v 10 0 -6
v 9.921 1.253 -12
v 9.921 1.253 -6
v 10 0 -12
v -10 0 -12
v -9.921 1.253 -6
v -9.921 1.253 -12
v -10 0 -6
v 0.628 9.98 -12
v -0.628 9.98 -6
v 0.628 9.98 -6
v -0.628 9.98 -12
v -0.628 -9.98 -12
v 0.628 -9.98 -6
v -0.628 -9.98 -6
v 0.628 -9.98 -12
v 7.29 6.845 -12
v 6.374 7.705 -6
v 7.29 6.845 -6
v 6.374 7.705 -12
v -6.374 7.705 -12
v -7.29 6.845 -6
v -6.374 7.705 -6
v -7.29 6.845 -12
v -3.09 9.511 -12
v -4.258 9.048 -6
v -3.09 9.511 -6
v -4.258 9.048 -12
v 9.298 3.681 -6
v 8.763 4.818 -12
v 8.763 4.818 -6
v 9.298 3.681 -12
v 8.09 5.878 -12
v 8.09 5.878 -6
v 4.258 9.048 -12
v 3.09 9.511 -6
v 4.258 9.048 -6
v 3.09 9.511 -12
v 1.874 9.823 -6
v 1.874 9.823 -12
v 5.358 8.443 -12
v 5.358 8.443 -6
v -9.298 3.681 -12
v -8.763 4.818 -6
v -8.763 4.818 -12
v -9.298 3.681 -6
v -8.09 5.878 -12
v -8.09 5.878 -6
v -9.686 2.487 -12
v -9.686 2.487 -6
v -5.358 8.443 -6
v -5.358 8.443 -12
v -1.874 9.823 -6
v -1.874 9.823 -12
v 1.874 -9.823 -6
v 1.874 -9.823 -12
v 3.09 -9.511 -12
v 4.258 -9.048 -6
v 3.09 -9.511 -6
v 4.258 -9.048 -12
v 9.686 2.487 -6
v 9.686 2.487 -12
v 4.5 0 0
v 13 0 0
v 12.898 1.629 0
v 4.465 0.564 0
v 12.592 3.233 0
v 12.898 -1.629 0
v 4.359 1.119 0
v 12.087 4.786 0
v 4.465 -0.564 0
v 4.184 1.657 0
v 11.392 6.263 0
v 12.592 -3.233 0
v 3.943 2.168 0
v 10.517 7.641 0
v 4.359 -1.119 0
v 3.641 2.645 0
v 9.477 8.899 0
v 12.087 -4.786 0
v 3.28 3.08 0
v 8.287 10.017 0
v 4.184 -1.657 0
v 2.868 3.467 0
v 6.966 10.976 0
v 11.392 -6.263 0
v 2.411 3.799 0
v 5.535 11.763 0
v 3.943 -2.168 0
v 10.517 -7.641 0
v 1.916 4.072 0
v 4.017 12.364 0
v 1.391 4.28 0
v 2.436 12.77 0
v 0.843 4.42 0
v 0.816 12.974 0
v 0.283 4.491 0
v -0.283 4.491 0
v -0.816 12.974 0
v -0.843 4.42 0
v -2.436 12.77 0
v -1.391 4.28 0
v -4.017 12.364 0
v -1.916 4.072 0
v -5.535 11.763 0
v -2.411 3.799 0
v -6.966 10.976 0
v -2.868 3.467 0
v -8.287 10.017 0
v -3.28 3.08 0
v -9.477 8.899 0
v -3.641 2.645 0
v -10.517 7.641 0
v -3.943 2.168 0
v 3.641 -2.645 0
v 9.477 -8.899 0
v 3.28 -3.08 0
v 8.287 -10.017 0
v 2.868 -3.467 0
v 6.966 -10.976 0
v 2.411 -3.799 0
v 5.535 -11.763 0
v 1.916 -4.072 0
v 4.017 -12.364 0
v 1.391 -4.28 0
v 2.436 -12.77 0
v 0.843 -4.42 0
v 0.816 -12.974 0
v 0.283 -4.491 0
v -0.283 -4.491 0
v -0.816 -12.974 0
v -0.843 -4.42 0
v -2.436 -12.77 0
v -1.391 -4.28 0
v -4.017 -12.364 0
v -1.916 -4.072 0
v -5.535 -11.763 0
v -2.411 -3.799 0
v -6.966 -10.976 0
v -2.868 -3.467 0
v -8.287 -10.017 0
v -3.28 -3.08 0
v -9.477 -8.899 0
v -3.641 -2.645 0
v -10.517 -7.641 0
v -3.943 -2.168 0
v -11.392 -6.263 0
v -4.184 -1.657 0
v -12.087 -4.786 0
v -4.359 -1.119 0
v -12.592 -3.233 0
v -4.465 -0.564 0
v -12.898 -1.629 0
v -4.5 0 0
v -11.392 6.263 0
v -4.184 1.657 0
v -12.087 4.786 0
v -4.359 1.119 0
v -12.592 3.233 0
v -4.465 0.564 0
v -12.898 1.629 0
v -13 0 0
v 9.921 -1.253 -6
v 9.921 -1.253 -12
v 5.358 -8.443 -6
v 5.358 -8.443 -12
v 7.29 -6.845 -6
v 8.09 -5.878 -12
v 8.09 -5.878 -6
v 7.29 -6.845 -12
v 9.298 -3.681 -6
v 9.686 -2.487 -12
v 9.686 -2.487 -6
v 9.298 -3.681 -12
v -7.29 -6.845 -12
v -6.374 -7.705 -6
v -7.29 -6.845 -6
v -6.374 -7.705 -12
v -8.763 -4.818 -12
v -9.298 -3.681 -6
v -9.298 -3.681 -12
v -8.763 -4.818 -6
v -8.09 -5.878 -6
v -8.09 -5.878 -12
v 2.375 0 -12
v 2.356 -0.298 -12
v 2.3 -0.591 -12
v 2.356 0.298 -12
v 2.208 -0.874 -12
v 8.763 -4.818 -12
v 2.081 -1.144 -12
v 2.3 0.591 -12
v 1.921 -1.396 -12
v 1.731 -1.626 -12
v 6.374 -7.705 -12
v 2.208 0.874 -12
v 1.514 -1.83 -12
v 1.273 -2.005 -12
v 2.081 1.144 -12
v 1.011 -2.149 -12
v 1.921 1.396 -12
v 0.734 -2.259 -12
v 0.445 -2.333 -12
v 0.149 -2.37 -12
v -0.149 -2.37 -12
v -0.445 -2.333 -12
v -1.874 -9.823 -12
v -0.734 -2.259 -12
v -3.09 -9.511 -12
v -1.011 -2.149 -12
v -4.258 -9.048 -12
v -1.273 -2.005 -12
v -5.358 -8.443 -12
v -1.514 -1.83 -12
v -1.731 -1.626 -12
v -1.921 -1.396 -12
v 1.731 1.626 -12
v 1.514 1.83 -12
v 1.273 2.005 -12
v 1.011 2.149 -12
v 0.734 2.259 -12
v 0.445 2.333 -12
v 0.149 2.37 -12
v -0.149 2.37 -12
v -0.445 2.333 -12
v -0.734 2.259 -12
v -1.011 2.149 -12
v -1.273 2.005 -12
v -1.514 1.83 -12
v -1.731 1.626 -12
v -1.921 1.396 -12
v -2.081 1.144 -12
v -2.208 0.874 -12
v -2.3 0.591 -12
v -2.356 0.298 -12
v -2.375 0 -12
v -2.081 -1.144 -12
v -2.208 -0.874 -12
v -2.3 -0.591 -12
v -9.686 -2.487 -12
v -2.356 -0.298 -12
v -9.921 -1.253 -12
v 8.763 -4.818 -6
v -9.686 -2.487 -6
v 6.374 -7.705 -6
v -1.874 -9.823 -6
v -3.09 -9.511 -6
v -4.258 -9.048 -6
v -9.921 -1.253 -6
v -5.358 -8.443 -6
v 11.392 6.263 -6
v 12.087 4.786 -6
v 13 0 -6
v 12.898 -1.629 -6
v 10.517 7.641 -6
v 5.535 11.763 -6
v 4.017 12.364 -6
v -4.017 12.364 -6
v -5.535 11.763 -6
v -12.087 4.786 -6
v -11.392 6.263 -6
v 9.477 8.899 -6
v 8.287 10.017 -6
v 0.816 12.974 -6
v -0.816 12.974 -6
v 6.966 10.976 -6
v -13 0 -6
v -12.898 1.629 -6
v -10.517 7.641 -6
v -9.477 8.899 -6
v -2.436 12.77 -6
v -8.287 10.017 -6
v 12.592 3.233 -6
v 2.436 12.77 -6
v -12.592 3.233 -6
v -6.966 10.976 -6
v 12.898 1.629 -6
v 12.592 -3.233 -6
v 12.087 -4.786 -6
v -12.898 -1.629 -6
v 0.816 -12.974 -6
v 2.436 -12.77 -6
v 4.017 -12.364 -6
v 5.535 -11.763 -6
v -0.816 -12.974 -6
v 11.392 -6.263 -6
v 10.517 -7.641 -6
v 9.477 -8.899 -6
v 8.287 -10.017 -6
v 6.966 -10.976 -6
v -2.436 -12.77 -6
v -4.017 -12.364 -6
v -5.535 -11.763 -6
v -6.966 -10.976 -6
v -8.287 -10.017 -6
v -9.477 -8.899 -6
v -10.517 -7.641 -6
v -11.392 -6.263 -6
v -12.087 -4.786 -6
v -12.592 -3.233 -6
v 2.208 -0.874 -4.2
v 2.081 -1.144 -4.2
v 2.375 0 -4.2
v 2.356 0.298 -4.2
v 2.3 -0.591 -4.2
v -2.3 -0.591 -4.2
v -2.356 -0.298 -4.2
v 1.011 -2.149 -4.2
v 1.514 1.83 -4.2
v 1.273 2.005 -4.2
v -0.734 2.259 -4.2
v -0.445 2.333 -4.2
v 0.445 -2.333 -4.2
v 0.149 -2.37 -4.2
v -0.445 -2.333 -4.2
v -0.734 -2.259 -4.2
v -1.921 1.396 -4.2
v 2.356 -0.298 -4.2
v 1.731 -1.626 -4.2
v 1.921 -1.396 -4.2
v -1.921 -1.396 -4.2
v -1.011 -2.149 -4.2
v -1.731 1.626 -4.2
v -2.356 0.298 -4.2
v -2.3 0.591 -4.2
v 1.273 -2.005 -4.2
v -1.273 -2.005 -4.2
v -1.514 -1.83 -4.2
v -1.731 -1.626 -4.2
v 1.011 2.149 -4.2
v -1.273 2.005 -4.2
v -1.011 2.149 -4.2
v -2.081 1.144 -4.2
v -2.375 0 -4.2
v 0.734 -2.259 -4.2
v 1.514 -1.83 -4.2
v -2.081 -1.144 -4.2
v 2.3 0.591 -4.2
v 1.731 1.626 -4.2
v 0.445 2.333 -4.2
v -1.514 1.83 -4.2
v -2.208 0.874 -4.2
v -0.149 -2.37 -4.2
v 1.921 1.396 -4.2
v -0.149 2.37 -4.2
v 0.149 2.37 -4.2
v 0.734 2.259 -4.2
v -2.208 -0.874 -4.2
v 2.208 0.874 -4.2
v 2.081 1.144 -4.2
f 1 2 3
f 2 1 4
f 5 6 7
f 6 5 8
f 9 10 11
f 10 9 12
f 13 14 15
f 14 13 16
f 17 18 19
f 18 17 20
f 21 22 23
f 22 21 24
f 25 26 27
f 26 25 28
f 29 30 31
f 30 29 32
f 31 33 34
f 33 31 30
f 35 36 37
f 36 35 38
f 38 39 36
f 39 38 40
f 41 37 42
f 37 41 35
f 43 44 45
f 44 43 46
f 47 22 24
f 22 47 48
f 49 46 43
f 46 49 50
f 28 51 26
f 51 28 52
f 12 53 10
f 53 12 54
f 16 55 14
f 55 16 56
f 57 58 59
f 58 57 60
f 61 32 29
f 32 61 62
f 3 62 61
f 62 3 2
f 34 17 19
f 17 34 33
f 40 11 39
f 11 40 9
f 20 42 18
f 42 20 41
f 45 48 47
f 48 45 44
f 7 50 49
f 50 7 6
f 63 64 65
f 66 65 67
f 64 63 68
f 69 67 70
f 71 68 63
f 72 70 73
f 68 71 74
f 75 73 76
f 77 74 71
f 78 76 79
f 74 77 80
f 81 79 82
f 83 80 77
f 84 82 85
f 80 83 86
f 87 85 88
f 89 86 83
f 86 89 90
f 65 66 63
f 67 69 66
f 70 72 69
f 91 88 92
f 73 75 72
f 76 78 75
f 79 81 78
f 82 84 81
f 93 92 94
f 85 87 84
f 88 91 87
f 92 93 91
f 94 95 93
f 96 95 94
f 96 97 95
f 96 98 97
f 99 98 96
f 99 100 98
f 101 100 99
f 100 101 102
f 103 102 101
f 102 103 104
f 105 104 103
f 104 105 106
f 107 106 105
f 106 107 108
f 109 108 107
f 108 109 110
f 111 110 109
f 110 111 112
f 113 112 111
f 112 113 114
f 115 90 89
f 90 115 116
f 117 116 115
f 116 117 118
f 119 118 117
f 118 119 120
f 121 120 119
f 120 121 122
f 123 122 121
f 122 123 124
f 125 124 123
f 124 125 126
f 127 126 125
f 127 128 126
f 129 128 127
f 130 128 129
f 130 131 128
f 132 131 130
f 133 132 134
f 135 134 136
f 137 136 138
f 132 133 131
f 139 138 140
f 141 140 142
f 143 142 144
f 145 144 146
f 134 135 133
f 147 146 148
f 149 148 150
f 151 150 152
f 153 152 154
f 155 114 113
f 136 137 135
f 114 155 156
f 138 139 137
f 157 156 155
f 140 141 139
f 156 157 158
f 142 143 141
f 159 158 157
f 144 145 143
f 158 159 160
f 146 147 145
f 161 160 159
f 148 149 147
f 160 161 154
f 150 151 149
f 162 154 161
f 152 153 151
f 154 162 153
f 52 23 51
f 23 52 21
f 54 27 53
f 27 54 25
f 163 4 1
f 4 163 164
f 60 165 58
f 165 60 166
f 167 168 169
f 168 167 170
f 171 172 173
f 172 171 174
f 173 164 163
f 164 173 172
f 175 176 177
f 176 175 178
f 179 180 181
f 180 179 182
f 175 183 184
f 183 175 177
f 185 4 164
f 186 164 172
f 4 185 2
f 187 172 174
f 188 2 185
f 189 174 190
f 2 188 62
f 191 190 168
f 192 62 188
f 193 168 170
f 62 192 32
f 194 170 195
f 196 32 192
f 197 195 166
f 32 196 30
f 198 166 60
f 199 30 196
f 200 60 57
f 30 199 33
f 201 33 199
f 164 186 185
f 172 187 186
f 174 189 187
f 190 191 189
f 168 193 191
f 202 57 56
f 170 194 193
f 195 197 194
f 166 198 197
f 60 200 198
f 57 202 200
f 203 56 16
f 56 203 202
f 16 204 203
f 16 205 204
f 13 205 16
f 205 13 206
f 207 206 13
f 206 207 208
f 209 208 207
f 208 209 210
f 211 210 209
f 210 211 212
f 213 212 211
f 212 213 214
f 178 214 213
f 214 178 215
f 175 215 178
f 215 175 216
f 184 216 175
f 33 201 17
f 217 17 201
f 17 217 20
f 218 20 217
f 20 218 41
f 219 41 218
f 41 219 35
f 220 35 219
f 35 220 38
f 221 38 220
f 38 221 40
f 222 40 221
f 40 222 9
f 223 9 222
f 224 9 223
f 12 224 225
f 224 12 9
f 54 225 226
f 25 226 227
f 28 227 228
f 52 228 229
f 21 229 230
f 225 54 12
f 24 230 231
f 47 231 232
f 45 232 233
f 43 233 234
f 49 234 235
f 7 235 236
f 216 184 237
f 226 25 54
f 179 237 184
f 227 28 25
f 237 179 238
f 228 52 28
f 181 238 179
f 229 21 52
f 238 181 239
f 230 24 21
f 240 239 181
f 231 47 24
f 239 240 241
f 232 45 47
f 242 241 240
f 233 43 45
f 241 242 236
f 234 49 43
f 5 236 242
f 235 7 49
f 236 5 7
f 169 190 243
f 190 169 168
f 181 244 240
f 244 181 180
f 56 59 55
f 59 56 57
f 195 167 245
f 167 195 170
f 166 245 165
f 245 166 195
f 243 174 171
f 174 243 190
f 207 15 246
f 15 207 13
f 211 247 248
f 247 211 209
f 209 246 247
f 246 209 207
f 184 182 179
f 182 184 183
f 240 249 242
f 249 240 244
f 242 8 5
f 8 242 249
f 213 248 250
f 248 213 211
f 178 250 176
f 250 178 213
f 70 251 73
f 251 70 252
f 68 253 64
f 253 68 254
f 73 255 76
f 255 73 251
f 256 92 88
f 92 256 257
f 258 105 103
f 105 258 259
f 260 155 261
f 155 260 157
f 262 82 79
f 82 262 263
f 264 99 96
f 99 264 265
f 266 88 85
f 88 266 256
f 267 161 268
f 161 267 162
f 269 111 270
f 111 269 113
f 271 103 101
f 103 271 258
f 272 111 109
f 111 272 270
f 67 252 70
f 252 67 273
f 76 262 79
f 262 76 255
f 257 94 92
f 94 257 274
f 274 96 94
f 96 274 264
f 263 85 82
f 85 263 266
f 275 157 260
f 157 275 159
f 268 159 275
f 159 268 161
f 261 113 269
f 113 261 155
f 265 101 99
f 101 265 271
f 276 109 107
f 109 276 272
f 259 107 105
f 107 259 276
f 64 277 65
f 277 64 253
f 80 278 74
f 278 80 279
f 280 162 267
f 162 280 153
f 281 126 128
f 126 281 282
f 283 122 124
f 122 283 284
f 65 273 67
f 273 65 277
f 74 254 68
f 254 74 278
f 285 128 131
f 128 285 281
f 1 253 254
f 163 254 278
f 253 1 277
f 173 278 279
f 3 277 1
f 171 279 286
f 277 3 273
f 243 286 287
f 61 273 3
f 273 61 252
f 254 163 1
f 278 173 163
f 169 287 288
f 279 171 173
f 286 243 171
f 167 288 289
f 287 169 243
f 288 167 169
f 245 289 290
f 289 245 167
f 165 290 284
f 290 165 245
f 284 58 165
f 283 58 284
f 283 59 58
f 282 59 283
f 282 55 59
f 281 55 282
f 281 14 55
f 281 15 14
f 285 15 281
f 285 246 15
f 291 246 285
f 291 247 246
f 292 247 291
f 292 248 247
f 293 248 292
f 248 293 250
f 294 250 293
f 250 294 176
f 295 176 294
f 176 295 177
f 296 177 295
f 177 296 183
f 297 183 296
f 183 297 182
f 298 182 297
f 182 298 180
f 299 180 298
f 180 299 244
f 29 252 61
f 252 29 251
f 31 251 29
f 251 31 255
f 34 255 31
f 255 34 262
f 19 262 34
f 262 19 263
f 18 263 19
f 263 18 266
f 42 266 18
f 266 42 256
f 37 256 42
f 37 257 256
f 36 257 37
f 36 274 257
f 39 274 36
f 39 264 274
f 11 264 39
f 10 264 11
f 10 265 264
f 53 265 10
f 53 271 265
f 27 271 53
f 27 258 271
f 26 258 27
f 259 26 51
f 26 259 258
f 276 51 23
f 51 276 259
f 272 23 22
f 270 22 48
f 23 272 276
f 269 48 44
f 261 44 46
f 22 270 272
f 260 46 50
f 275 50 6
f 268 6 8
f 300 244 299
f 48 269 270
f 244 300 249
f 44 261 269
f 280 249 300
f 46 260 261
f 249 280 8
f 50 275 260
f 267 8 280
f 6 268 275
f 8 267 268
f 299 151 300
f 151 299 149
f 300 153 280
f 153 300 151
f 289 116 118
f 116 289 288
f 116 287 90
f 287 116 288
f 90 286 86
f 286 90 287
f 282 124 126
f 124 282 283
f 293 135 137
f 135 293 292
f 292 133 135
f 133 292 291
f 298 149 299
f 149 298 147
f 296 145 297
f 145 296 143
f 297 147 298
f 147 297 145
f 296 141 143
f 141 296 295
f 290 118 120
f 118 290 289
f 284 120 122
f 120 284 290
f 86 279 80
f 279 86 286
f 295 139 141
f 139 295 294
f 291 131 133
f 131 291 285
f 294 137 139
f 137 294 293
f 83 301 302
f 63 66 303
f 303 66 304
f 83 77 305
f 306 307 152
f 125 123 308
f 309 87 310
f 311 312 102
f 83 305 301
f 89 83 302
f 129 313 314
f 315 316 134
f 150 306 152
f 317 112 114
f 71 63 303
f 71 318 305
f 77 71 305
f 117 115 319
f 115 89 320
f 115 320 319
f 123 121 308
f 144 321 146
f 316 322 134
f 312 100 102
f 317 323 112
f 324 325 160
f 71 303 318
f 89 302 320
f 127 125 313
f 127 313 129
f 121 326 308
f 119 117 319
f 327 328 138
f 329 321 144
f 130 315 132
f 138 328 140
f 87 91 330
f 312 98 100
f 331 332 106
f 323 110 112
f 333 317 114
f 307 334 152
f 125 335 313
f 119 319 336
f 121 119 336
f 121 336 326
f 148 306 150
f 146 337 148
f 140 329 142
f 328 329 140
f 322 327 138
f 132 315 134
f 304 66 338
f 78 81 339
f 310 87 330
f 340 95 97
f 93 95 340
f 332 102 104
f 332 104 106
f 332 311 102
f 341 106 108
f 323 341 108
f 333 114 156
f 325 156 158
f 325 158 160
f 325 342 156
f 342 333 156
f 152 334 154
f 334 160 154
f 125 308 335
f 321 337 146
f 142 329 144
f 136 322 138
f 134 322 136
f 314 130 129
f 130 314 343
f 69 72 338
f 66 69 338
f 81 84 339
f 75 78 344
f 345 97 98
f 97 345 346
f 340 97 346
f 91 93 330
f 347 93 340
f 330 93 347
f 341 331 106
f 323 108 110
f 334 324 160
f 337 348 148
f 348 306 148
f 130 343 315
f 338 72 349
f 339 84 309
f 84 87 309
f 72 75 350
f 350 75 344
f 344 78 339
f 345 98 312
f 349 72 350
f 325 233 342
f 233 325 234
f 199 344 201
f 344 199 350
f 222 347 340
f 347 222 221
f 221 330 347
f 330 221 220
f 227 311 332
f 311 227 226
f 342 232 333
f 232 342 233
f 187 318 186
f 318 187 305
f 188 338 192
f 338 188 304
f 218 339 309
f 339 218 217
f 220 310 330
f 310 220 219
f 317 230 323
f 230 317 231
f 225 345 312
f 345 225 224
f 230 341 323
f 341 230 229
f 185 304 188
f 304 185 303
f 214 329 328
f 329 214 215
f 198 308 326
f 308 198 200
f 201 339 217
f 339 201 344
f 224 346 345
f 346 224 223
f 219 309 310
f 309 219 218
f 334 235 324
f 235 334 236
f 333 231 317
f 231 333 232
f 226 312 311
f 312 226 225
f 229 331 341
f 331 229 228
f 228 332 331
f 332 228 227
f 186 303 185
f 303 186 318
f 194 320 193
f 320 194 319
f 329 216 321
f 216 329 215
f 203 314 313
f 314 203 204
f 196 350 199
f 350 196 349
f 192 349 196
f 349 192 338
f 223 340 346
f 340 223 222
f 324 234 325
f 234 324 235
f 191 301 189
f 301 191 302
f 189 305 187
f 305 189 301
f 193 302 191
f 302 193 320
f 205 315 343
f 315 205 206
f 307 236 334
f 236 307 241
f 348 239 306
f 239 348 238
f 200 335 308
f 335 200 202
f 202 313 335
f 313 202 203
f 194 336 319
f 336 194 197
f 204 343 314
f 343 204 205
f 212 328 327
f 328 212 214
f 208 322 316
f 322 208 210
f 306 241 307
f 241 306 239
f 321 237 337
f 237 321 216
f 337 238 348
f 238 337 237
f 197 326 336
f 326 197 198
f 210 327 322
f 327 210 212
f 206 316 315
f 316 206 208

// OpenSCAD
$fn = 50;


difference() {
	union() {
		translate(v = [0, 0, -12.0000000000]) {
			cylinder(h = 12, r = 10.0000000000);
		}
		translate(v = [0, 0, -6.0000000000]) {
			cylinder(h = 6, r = 13.0000000000);
		}
	}
	union() {
		translate(v = [0, 0, 0]) {
			rotate(a = [0, 0, 0]) {
				difference() {
					union() {
						#translate(v = [0, 0, -12.0000000000]) {
							cylinder(h = 12, r = 2.2500000000);
						}
						#translate(v = [0, 0, -4.2000000000]) {
							cylinder(h = 4.2000000000, r = 10.0000000000, r1 = 2.3750000000, r2 = 4.5000000000);
						}
						#translate(v = [0, 0, -12.0000000000]) {
							cylinder(h = 12, r = 2.3750000000);
						}
						#translate(v = [0, 0, -12.0000000000]) {
							cylinder(h = 12, r = 2.2500000000);
						}
					}
					union();
				}
			}
		}
	}
}
